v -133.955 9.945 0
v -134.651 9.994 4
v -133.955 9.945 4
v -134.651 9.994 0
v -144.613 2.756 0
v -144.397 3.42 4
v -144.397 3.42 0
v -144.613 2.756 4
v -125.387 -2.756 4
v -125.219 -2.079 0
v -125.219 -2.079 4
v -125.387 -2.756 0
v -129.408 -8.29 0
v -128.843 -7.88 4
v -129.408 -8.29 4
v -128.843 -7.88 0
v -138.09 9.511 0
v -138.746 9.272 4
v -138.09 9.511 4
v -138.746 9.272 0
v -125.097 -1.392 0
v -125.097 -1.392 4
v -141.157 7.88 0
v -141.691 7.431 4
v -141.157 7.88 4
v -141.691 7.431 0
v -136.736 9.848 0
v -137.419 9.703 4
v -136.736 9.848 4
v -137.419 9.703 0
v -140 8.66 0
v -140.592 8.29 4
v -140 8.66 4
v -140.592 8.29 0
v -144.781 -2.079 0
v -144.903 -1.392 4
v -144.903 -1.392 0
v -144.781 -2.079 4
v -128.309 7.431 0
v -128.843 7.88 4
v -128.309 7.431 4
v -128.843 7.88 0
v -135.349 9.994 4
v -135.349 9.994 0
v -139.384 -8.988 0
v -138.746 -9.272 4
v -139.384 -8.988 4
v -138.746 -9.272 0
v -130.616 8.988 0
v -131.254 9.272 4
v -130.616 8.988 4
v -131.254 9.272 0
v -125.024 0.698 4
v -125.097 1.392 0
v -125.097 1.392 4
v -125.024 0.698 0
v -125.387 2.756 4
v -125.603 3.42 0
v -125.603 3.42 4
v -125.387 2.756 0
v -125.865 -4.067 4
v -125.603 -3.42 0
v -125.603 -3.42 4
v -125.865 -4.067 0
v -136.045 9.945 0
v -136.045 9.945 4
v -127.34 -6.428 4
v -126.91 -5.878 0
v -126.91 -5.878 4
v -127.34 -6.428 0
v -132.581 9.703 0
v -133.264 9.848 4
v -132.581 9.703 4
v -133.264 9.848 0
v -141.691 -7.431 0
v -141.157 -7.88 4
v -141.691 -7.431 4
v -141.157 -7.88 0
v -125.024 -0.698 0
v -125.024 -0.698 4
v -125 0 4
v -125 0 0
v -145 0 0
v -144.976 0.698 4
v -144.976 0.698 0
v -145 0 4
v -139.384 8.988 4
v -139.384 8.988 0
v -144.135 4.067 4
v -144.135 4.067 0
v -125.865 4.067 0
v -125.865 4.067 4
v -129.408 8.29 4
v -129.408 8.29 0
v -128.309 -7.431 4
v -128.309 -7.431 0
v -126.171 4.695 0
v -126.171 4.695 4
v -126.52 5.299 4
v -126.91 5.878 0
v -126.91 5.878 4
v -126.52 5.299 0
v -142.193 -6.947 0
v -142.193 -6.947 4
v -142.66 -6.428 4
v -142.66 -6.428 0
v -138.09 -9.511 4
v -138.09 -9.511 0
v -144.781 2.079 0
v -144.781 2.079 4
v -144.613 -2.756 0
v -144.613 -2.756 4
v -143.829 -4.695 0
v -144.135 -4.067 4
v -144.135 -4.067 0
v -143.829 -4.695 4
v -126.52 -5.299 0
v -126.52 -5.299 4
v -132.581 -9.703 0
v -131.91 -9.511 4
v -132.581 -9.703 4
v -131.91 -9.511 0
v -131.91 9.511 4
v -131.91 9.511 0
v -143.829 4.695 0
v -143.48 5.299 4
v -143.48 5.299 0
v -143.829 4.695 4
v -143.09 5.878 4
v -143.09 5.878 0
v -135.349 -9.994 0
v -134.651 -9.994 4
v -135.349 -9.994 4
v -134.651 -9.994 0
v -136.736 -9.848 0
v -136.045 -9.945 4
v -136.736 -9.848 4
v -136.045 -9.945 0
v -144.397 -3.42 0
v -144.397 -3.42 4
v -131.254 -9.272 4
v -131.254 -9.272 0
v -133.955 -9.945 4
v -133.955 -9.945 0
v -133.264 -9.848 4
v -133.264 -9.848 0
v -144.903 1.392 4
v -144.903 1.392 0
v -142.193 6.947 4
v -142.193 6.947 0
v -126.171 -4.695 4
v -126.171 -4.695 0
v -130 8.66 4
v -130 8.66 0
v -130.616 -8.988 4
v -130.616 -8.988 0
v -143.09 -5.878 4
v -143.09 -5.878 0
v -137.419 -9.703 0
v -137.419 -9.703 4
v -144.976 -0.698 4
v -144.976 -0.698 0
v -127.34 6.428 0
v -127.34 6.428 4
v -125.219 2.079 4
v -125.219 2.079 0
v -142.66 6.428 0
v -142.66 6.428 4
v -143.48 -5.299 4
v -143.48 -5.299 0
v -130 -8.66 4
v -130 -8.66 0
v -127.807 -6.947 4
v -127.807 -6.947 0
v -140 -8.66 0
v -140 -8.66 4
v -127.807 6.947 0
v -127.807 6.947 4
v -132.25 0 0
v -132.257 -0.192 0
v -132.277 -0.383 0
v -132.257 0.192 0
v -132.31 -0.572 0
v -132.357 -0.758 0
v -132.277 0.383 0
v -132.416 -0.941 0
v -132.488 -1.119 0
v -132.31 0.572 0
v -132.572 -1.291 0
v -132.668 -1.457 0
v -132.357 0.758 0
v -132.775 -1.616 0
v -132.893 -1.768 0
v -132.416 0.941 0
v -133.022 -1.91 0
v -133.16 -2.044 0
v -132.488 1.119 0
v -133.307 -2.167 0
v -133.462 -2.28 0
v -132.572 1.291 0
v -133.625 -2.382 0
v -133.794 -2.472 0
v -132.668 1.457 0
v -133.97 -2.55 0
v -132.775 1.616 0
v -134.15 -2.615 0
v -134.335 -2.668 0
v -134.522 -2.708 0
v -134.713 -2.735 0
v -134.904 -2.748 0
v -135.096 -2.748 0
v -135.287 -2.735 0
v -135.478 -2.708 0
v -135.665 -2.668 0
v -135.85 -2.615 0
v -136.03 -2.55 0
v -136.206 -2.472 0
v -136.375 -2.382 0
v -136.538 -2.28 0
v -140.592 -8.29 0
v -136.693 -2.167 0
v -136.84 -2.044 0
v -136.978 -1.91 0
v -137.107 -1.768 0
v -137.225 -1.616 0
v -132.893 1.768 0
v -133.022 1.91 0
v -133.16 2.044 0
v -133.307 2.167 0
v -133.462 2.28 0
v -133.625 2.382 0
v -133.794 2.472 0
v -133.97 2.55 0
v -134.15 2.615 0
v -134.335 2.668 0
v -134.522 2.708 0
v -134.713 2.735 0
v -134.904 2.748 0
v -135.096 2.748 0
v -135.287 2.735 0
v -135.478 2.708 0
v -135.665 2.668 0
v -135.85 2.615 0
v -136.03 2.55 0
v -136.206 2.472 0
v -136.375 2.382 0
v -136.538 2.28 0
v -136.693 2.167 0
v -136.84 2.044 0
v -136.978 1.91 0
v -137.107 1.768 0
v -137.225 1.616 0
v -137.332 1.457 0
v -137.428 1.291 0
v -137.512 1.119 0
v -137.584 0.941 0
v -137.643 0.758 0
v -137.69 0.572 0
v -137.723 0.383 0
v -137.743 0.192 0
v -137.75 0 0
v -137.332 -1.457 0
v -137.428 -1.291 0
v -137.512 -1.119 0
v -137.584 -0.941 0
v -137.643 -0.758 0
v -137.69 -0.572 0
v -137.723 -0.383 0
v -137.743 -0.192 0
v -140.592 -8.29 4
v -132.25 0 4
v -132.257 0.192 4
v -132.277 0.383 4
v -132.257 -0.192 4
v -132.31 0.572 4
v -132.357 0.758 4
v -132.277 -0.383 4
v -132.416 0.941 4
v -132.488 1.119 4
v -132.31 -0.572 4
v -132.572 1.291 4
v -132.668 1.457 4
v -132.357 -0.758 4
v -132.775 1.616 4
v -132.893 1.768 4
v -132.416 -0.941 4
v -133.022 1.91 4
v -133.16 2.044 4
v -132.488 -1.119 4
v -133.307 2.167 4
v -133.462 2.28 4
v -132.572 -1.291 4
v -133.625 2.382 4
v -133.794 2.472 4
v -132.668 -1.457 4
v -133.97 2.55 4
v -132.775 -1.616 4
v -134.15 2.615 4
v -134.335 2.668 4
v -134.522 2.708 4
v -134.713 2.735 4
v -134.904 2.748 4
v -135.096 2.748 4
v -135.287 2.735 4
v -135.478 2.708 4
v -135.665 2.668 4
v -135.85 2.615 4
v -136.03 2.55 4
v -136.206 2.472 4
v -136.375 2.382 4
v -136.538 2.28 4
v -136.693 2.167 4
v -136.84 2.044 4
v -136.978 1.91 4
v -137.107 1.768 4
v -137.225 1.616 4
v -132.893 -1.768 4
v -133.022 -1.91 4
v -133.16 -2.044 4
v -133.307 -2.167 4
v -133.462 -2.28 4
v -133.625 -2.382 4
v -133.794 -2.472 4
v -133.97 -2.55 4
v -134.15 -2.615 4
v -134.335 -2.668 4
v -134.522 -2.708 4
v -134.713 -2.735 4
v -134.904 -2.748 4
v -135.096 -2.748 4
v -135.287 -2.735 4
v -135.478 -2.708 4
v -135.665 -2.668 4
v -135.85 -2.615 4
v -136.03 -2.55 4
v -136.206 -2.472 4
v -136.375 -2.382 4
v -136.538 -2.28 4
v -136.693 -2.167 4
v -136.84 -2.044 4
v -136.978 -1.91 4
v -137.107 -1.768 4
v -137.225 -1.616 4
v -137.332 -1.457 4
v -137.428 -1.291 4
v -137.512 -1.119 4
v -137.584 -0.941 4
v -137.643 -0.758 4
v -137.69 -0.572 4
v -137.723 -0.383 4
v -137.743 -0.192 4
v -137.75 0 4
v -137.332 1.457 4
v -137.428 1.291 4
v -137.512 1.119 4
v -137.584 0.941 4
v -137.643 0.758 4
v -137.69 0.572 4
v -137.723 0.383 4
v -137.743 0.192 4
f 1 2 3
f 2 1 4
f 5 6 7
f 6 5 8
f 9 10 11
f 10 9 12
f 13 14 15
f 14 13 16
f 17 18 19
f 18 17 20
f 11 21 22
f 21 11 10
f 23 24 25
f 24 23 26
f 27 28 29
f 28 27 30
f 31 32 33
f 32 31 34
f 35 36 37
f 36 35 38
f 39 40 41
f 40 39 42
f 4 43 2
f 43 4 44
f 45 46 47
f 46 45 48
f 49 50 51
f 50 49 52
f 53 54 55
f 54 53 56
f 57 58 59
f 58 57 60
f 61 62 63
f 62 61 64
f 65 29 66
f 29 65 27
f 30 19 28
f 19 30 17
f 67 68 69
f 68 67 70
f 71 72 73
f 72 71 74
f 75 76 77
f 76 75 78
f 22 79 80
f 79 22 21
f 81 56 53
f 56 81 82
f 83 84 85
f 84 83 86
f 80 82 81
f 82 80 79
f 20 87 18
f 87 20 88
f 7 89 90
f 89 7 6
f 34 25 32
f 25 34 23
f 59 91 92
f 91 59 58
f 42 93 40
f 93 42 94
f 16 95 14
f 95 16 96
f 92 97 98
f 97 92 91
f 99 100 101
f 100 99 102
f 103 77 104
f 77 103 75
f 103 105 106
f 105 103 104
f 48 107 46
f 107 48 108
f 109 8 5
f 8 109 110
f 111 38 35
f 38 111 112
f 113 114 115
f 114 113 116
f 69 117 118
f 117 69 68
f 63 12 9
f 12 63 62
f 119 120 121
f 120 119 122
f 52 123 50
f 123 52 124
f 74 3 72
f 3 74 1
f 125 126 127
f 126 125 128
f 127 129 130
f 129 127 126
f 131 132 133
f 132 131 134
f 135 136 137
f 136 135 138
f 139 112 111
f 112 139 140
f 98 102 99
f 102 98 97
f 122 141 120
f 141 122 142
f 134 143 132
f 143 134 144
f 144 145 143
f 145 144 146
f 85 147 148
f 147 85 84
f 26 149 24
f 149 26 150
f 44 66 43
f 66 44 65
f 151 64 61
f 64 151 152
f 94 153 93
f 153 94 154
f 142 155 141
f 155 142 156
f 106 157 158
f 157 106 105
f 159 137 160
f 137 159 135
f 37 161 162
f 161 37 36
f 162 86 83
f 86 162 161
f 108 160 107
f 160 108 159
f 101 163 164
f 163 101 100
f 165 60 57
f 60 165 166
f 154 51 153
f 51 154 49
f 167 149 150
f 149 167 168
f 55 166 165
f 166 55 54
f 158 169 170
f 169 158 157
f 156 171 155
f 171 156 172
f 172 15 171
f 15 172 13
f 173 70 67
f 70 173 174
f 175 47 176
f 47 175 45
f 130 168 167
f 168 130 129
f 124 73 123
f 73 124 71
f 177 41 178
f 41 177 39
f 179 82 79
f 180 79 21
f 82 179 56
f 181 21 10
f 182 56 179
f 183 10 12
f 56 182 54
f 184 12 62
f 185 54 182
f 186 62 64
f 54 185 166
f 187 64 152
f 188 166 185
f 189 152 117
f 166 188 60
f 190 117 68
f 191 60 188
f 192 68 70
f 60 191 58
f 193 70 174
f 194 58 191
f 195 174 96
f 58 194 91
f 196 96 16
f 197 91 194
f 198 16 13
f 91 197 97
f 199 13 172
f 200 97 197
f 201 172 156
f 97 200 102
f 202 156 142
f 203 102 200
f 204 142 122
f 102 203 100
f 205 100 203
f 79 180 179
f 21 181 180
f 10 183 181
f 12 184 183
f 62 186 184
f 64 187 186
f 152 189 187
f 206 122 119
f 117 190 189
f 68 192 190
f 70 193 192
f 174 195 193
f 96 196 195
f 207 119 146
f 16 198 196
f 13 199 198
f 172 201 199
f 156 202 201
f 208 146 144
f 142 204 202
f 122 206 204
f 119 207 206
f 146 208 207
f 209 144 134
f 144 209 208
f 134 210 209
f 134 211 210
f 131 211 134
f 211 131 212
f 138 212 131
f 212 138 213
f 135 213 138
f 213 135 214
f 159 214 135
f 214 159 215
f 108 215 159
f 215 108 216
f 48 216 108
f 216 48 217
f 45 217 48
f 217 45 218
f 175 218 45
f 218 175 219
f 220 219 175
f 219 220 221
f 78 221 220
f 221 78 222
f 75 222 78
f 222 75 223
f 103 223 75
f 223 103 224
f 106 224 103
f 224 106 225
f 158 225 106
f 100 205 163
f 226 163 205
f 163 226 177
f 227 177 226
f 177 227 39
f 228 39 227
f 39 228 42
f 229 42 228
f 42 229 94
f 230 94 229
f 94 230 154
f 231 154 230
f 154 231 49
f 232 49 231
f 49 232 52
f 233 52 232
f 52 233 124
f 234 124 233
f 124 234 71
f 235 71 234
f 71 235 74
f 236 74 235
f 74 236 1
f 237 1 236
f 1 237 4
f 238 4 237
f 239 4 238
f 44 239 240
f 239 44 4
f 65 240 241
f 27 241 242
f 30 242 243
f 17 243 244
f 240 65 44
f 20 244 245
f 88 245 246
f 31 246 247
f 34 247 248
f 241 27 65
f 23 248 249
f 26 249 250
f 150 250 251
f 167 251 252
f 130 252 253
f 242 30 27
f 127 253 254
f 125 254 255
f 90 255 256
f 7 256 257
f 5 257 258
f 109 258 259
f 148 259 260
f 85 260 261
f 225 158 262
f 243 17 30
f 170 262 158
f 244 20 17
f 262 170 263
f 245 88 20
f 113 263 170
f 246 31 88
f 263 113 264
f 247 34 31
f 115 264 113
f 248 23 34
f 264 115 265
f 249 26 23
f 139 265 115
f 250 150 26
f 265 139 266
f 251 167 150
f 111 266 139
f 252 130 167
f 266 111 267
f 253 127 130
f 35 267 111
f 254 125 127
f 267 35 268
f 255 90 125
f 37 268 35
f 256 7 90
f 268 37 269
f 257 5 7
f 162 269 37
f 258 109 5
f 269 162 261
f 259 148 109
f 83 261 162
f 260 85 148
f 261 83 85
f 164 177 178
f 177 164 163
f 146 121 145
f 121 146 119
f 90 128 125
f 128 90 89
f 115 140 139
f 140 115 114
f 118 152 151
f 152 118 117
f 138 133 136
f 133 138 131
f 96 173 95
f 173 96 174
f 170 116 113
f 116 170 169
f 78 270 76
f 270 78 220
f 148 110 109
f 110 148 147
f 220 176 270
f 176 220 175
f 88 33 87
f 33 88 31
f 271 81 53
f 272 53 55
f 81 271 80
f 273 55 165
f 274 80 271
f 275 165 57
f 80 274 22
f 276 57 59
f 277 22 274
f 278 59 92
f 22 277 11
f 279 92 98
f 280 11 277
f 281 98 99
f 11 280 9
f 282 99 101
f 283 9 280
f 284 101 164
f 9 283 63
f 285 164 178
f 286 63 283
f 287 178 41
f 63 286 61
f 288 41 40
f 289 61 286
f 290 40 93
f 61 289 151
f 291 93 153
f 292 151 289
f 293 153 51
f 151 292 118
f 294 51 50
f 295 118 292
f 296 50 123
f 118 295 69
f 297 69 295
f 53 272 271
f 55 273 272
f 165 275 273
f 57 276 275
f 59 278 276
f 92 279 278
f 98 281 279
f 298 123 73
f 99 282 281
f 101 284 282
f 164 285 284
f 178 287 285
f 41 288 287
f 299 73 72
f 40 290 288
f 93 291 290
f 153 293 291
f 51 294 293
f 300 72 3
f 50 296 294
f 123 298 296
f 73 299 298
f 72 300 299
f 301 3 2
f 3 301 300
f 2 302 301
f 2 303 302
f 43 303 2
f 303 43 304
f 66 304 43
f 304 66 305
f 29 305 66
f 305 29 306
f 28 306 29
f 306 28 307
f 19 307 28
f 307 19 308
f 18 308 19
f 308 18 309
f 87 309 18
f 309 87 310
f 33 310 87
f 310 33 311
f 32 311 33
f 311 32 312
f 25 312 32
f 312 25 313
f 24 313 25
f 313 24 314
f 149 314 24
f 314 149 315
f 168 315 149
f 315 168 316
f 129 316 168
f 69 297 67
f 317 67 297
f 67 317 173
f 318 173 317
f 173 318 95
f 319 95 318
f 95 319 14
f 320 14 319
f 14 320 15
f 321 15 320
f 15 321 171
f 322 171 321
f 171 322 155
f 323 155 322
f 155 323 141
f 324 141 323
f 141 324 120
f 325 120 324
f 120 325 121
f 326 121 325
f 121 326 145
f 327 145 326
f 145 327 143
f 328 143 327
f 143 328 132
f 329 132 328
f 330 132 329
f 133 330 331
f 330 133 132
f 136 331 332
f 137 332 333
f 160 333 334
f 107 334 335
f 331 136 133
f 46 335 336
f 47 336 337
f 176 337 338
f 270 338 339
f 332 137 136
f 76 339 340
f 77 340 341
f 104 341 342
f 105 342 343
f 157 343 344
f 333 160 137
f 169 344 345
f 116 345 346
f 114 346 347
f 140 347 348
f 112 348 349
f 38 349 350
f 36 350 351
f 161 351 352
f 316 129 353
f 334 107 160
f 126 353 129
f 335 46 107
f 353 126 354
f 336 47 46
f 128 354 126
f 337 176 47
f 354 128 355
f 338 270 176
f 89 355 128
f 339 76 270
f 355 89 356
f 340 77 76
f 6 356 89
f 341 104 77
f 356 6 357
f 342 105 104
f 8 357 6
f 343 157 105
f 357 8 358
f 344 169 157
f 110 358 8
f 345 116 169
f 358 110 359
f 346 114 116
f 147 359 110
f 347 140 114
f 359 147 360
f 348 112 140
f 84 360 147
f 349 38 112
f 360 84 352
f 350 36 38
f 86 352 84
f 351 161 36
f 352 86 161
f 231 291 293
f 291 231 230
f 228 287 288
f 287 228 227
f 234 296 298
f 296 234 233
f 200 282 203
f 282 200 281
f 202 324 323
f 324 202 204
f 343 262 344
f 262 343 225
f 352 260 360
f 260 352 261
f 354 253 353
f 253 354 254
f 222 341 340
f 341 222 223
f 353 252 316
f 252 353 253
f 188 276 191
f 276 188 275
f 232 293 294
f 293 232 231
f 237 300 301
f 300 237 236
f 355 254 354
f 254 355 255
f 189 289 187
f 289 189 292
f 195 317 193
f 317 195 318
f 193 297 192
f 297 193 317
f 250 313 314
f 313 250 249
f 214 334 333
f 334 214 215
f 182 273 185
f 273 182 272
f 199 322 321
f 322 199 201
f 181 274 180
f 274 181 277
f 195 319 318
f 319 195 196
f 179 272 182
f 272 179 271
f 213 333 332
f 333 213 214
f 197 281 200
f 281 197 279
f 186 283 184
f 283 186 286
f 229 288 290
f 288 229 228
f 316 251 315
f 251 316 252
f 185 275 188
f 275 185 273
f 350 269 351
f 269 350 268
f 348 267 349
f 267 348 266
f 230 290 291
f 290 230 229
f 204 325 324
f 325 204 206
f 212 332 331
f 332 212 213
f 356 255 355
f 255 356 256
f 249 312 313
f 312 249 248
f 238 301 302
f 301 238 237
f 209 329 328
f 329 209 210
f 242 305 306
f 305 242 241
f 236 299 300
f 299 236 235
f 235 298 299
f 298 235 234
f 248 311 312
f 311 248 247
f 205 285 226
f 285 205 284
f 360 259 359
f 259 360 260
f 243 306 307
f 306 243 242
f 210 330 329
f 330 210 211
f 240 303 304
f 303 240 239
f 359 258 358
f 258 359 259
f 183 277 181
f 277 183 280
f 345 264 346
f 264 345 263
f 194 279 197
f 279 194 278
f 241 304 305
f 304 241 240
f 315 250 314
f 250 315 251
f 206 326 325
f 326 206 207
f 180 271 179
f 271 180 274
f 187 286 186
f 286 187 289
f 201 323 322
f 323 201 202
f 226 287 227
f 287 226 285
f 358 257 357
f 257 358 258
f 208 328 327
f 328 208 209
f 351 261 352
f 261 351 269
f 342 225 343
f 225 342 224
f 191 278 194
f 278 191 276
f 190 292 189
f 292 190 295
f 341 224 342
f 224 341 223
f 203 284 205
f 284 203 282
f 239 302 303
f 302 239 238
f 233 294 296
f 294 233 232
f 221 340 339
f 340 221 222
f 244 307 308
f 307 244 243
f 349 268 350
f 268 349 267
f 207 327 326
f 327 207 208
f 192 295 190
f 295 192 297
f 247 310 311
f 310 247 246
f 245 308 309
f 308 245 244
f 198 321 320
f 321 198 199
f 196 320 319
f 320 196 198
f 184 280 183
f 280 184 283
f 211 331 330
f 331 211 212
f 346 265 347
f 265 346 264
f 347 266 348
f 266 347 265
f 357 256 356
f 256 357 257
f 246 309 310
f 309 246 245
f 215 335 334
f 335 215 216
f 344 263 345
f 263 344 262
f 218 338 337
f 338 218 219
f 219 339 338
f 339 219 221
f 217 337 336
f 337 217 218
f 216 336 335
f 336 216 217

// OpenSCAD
$fn=90;
 
 
 module F()
 {
    difference() {
        cylinder(d=20,4);
        cylinder(d=5.5,5);
    }
 }
 
 
translate([-135,0,0]) F();
        
        
        
